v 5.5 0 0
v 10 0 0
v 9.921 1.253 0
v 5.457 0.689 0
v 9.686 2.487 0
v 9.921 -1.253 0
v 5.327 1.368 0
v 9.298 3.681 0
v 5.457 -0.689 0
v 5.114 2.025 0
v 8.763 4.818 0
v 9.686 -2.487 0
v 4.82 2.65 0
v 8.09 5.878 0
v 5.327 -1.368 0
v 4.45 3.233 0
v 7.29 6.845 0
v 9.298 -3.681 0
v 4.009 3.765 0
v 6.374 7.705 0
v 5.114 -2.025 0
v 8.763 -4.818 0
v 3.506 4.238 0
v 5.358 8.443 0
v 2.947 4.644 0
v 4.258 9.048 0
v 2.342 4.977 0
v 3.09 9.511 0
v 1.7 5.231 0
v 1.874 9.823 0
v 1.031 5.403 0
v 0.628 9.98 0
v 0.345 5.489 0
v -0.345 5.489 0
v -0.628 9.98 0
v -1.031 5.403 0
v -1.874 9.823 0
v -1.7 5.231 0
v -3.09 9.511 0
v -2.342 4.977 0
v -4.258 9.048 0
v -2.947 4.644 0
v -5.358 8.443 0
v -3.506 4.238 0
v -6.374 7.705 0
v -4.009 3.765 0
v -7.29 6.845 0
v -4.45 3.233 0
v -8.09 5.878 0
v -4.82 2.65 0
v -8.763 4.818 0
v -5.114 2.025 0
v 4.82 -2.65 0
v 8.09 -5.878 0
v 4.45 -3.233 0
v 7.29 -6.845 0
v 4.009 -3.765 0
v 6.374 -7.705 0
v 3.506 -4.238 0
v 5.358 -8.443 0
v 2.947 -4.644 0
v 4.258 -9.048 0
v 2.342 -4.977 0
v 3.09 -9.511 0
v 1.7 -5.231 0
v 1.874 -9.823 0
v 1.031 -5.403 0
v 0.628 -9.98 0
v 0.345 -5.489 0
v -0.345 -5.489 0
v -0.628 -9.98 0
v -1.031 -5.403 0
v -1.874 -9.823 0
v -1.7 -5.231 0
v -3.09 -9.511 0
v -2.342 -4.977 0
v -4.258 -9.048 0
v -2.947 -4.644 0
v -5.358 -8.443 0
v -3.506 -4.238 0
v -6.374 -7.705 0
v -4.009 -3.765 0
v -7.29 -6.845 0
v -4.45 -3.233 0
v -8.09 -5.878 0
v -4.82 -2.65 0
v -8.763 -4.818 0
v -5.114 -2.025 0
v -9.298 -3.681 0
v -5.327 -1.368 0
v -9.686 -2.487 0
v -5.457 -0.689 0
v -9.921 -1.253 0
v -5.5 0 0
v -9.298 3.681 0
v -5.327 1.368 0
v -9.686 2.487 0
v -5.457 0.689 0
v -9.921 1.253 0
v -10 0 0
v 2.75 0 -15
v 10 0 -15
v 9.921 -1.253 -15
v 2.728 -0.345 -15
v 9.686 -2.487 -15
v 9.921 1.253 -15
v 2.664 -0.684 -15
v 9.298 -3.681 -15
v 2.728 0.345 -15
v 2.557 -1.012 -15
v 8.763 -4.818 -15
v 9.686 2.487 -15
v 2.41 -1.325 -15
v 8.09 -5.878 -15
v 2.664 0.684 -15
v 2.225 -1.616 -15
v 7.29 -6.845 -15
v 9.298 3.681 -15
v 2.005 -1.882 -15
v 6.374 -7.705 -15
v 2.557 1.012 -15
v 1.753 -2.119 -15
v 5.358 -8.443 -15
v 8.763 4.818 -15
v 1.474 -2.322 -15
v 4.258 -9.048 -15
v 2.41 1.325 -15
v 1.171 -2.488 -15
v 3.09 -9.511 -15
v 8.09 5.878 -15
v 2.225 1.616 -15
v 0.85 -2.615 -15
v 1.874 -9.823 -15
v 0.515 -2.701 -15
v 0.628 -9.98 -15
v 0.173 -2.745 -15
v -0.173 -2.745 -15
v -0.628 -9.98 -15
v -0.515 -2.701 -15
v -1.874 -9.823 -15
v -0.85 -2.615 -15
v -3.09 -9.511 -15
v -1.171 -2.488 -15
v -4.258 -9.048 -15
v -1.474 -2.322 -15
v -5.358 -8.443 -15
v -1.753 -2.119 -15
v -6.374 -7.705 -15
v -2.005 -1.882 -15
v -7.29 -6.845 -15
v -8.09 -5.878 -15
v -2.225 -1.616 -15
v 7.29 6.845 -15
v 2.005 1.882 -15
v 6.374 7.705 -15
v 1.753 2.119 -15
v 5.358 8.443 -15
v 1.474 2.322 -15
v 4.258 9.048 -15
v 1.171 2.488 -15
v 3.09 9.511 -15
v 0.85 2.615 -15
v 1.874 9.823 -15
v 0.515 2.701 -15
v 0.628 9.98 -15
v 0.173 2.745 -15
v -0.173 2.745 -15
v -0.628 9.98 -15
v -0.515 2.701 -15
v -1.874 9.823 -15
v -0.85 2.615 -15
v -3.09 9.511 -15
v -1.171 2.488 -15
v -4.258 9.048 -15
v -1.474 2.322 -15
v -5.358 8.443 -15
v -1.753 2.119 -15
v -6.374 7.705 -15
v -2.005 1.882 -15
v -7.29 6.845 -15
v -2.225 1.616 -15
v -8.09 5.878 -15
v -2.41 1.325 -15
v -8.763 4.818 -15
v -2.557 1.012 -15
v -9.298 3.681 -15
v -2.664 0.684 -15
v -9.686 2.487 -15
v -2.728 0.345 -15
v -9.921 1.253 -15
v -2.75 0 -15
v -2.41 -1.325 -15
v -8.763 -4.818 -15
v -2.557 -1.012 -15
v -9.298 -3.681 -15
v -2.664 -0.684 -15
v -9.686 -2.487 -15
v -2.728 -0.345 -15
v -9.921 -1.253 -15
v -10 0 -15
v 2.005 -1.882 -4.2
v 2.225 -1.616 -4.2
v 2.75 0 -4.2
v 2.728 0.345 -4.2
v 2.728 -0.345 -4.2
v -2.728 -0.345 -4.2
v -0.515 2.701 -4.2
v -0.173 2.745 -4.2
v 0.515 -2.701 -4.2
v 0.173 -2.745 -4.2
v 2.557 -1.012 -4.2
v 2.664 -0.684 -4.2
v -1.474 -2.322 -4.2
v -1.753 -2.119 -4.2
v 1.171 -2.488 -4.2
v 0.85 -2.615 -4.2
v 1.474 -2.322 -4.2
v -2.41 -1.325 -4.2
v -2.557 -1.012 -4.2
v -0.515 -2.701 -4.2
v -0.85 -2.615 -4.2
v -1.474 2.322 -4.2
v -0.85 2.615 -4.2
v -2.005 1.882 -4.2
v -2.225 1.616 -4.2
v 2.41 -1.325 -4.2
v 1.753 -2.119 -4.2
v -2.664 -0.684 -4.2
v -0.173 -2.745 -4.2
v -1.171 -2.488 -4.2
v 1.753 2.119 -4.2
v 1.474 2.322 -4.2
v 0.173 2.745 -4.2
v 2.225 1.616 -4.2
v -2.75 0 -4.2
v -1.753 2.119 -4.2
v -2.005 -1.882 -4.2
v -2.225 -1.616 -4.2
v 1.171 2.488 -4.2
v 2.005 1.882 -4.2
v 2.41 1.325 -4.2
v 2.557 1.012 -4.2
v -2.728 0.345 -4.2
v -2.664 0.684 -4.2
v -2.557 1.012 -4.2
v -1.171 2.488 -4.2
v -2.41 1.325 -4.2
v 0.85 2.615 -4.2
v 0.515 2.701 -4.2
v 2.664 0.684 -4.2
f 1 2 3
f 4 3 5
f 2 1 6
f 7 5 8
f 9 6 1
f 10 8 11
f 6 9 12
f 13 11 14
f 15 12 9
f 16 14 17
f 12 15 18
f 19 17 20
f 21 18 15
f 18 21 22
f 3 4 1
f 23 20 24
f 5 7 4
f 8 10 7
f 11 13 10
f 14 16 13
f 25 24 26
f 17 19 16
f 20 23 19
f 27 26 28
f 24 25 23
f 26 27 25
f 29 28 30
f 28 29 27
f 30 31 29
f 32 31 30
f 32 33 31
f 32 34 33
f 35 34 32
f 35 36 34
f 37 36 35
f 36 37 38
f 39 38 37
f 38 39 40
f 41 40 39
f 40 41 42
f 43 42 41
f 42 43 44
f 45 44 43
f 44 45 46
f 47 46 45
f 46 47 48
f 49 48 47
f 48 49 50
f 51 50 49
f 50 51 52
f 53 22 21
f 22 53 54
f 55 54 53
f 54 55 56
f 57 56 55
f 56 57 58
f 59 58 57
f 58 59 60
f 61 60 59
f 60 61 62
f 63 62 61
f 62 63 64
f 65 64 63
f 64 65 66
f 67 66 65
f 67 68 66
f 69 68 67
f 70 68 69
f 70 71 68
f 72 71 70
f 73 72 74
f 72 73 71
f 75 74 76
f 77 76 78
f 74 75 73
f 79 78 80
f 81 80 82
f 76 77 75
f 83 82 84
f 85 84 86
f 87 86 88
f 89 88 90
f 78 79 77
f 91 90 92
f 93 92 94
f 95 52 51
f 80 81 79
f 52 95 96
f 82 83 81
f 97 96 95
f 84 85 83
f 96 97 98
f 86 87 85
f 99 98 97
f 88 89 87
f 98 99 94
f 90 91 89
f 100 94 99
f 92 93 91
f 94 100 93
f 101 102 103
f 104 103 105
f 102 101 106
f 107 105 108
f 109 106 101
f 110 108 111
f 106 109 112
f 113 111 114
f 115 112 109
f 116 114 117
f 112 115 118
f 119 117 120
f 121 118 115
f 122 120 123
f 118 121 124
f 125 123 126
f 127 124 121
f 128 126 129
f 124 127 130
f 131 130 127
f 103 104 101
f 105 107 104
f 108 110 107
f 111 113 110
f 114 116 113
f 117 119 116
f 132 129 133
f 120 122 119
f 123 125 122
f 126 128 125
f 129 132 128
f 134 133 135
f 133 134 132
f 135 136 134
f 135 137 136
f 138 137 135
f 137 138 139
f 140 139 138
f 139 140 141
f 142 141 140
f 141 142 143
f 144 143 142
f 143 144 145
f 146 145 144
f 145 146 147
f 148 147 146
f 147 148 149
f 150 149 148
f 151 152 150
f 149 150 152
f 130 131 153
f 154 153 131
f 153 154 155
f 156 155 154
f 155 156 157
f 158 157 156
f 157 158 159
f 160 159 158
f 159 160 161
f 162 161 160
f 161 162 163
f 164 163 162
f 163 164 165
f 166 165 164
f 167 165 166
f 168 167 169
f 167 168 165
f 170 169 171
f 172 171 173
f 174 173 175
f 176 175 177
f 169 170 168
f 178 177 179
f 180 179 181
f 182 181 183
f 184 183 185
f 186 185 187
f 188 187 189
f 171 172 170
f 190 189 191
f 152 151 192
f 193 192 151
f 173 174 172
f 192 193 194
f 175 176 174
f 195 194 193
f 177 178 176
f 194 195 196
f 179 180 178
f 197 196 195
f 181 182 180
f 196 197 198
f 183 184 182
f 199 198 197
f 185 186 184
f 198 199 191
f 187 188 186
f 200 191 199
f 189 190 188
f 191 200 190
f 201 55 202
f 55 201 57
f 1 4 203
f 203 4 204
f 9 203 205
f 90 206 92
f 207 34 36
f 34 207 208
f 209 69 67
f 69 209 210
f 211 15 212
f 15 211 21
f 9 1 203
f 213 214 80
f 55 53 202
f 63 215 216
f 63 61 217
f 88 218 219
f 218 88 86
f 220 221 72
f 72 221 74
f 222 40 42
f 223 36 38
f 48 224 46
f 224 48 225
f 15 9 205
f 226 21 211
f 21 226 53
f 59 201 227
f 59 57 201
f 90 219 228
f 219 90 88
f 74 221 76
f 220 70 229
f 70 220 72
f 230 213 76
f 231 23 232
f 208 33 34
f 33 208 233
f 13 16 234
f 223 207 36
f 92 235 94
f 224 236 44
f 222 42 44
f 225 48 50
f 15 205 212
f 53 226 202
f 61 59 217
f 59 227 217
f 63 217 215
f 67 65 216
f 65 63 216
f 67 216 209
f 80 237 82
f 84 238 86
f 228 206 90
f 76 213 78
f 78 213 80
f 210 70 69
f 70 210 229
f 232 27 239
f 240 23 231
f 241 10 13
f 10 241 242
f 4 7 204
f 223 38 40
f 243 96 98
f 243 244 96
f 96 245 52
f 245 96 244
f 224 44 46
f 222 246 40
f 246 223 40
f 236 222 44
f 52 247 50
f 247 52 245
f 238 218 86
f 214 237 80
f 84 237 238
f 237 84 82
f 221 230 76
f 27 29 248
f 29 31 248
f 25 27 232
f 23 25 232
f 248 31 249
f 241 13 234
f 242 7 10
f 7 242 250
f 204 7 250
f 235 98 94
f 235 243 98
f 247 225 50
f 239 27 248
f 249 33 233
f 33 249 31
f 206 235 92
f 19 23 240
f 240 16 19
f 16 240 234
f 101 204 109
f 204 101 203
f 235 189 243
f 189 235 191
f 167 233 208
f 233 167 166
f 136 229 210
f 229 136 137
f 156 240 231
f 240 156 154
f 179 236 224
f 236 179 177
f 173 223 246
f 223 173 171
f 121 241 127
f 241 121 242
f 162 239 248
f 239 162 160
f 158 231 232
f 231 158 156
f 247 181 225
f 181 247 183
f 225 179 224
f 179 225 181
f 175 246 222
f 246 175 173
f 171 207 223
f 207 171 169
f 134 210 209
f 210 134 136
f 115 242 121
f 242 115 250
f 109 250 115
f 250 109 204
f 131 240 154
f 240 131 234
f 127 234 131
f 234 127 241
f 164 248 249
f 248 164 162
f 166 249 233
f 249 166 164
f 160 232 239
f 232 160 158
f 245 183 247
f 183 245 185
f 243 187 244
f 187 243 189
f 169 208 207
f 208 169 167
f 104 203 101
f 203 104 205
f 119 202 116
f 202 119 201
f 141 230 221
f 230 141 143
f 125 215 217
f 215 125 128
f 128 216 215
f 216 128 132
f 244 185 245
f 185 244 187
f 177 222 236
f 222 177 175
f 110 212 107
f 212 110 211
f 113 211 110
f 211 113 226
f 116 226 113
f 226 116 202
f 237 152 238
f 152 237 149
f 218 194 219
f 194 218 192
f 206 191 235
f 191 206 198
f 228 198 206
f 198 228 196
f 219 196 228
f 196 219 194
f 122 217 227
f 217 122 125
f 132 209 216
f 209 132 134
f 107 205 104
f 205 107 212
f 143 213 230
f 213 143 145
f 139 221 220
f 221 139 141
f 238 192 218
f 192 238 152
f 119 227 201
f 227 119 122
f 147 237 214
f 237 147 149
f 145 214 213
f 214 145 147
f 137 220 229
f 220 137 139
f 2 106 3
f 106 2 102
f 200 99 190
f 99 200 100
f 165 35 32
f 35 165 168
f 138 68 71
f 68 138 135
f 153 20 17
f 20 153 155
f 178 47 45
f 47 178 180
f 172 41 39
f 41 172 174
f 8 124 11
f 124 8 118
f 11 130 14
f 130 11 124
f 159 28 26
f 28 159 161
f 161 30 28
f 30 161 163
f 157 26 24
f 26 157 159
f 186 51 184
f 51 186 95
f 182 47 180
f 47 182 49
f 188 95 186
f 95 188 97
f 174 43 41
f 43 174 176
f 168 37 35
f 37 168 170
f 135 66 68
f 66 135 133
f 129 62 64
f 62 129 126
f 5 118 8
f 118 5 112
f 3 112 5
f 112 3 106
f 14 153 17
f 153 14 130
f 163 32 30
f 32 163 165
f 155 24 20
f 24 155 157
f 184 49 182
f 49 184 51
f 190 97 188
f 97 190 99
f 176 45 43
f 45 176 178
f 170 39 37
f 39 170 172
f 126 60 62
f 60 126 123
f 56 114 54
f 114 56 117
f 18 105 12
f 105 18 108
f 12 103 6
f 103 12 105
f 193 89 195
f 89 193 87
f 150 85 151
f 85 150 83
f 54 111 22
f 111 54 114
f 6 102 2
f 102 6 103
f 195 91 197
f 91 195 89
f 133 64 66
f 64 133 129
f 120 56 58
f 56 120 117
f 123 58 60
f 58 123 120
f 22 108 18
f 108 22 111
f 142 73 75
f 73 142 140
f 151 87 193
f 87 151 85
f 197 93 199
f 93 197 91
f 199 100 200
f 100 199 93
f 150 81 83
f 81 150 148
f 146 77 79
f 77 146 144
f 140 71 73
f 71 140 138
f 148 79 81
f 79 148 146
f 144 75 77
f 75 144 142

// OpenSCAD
$fn = 50;


difference() {
	union() {
		translate(v = [0, 0, -15.0000000000]) {
			cylinder(h = 15, r = 10.0000000000);
		}
	}
	union() {
		translate(v = [0, 0, 0]) {
			rotate(a = [0, 0, 0]) {
				difference() {
					union() {
						#translate(v = [0, 0, -15.0000000000]) {
							cylinder(h = 15, r = 2.2500000000);
						}
						#translate(v = [0, 0, -4.2000000000]) {
							cylinder(h = 4.2000000000, r = 10.0000000000, r1 = 2.7500000000, r2 = 5.5000000000);
						}
						#translate(v = [0, 0, -15.0000000000]) {
							cylinder(h = 15, r = 2.7500000000);
						}
						#translate(v = [0, 0, -15.0000000000]) {
							cylinder(h = 15, r = 2.2500000000);
						}
					}
					union();
				}
			}
		}
	}
}
